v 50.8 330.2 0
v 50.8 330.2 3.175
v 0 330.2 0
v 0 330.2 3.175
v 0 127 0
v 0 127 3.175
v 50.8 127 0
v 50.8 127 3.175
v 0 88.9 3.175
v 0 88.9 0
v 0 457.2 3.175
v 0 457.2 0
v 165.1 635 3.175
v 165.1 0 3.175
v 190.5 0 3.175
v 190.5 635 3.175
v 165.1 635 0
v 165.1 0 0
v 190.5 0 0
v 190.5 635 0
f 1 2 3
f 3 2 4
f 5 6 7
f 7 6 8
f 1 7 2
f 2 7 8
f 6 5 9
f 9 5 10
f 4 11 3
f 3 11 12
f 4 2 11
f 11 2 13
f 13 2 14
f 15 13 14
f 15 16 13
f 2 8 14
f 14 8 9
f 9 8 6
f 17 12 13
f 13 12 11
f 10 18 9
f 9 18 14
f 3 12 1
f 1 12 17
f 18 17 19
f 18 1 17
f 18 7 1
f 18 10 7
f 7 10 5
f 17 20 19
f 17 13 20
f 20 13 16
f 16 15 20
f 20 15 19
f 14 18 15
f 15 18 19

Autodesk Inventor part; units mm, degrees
ref_plane "YZ Plane" through (0, 0, 0) normal (1, 0, 0) x (0, 1, 0)
ref_plane "XZ Plane" through (0, 0, 0) normal (0, 1, 0) x (-1, 0, 0)
ref_plane "XY Plane" through (0, 0, 0) normal (0, 0, 1) x (1, 0, 0)
sketch "Sketch1" plane through (0, 0, 0) normal (0, 0, 1) x (1, 0, 0)
  line L0 (0, 0) -> (190.5, 0)
  line L1 (190.5, 0) -> (190.5, 635)
  line L2 (190.5, 635) -> (0, 635)
  line L3 (0, 635) -> (0, 0)
  dimension "d0" = 190.5
  dimension "d1" = 635
extrude "Extrusion1" add sketch "Sketch1" along normal blind 3.175
sketch "Sketch2" plane through (0, 0, 3.175) normal (0, 0, 1) x (1, 0, 0)
  line L0 (0, 0) -> (0, 635) projected
  line L1 (190.5, 0) -> (0, 0) projected
  line L2 (165.1, 0) -> (0, 0)
  line L3 (0, 88.9) -> (165.1, 0)
  line L4 (0, 635) -> (190.5, 635) projected
  line L5 (165.1, 635) -> (0, 635)
  line L6 (0, 457.2) -> (165.1, 635)
  line L7 (0, 457.2) -> (0, 635)
  line L8 (165.1, 635) -> (165.1, 0) construction
  line L9 (190.5, 635) -> (190.5, 0) projected
  dimension "d5" = 88.9
  dimension "d8" = 177.8
  dimension "d9" = 25.4
extrude "Extrusion2" cut sketch "Sketch2" against normal up to next contours L0 L3 L1 | L0 L4 L6
sketch "Sketch4" plane through (0, 0, 3.175) normal (0, 0, 1) x (1, 0, 0)
  line L0 (0, 88.9) -> (0, 457.2) projected
  line L1 (0, 330.2) -> (50.8, 330.2)
  line L2 (50.8, 330.2) -> (50.8, 127)
  line L3 (50.8, 127) -> (0, 127)
  line L4 (0, 127) -> (0, 330.2)
  line L5 (165.1, 635) -> (50.8, 635) construction
  line L6 (50.8, 635) -> (50.8, 330.2) construction
  line L7 (50.8, 127) -> (50.8, 0) construction
  line L8 (50.8, 0) -> (165.1, 0) construction
  point P0 (0, 0)
  dimension "d17" = 203.2
  dimension "d18" = 50.8
  dimension "d21" = 127
extrude "Extrusion4" cut sketch "Sketch4" against normal through all
properties part number "Conveyor_Frame_BottomStabilizerPlate" material "Aluminum-6061"
